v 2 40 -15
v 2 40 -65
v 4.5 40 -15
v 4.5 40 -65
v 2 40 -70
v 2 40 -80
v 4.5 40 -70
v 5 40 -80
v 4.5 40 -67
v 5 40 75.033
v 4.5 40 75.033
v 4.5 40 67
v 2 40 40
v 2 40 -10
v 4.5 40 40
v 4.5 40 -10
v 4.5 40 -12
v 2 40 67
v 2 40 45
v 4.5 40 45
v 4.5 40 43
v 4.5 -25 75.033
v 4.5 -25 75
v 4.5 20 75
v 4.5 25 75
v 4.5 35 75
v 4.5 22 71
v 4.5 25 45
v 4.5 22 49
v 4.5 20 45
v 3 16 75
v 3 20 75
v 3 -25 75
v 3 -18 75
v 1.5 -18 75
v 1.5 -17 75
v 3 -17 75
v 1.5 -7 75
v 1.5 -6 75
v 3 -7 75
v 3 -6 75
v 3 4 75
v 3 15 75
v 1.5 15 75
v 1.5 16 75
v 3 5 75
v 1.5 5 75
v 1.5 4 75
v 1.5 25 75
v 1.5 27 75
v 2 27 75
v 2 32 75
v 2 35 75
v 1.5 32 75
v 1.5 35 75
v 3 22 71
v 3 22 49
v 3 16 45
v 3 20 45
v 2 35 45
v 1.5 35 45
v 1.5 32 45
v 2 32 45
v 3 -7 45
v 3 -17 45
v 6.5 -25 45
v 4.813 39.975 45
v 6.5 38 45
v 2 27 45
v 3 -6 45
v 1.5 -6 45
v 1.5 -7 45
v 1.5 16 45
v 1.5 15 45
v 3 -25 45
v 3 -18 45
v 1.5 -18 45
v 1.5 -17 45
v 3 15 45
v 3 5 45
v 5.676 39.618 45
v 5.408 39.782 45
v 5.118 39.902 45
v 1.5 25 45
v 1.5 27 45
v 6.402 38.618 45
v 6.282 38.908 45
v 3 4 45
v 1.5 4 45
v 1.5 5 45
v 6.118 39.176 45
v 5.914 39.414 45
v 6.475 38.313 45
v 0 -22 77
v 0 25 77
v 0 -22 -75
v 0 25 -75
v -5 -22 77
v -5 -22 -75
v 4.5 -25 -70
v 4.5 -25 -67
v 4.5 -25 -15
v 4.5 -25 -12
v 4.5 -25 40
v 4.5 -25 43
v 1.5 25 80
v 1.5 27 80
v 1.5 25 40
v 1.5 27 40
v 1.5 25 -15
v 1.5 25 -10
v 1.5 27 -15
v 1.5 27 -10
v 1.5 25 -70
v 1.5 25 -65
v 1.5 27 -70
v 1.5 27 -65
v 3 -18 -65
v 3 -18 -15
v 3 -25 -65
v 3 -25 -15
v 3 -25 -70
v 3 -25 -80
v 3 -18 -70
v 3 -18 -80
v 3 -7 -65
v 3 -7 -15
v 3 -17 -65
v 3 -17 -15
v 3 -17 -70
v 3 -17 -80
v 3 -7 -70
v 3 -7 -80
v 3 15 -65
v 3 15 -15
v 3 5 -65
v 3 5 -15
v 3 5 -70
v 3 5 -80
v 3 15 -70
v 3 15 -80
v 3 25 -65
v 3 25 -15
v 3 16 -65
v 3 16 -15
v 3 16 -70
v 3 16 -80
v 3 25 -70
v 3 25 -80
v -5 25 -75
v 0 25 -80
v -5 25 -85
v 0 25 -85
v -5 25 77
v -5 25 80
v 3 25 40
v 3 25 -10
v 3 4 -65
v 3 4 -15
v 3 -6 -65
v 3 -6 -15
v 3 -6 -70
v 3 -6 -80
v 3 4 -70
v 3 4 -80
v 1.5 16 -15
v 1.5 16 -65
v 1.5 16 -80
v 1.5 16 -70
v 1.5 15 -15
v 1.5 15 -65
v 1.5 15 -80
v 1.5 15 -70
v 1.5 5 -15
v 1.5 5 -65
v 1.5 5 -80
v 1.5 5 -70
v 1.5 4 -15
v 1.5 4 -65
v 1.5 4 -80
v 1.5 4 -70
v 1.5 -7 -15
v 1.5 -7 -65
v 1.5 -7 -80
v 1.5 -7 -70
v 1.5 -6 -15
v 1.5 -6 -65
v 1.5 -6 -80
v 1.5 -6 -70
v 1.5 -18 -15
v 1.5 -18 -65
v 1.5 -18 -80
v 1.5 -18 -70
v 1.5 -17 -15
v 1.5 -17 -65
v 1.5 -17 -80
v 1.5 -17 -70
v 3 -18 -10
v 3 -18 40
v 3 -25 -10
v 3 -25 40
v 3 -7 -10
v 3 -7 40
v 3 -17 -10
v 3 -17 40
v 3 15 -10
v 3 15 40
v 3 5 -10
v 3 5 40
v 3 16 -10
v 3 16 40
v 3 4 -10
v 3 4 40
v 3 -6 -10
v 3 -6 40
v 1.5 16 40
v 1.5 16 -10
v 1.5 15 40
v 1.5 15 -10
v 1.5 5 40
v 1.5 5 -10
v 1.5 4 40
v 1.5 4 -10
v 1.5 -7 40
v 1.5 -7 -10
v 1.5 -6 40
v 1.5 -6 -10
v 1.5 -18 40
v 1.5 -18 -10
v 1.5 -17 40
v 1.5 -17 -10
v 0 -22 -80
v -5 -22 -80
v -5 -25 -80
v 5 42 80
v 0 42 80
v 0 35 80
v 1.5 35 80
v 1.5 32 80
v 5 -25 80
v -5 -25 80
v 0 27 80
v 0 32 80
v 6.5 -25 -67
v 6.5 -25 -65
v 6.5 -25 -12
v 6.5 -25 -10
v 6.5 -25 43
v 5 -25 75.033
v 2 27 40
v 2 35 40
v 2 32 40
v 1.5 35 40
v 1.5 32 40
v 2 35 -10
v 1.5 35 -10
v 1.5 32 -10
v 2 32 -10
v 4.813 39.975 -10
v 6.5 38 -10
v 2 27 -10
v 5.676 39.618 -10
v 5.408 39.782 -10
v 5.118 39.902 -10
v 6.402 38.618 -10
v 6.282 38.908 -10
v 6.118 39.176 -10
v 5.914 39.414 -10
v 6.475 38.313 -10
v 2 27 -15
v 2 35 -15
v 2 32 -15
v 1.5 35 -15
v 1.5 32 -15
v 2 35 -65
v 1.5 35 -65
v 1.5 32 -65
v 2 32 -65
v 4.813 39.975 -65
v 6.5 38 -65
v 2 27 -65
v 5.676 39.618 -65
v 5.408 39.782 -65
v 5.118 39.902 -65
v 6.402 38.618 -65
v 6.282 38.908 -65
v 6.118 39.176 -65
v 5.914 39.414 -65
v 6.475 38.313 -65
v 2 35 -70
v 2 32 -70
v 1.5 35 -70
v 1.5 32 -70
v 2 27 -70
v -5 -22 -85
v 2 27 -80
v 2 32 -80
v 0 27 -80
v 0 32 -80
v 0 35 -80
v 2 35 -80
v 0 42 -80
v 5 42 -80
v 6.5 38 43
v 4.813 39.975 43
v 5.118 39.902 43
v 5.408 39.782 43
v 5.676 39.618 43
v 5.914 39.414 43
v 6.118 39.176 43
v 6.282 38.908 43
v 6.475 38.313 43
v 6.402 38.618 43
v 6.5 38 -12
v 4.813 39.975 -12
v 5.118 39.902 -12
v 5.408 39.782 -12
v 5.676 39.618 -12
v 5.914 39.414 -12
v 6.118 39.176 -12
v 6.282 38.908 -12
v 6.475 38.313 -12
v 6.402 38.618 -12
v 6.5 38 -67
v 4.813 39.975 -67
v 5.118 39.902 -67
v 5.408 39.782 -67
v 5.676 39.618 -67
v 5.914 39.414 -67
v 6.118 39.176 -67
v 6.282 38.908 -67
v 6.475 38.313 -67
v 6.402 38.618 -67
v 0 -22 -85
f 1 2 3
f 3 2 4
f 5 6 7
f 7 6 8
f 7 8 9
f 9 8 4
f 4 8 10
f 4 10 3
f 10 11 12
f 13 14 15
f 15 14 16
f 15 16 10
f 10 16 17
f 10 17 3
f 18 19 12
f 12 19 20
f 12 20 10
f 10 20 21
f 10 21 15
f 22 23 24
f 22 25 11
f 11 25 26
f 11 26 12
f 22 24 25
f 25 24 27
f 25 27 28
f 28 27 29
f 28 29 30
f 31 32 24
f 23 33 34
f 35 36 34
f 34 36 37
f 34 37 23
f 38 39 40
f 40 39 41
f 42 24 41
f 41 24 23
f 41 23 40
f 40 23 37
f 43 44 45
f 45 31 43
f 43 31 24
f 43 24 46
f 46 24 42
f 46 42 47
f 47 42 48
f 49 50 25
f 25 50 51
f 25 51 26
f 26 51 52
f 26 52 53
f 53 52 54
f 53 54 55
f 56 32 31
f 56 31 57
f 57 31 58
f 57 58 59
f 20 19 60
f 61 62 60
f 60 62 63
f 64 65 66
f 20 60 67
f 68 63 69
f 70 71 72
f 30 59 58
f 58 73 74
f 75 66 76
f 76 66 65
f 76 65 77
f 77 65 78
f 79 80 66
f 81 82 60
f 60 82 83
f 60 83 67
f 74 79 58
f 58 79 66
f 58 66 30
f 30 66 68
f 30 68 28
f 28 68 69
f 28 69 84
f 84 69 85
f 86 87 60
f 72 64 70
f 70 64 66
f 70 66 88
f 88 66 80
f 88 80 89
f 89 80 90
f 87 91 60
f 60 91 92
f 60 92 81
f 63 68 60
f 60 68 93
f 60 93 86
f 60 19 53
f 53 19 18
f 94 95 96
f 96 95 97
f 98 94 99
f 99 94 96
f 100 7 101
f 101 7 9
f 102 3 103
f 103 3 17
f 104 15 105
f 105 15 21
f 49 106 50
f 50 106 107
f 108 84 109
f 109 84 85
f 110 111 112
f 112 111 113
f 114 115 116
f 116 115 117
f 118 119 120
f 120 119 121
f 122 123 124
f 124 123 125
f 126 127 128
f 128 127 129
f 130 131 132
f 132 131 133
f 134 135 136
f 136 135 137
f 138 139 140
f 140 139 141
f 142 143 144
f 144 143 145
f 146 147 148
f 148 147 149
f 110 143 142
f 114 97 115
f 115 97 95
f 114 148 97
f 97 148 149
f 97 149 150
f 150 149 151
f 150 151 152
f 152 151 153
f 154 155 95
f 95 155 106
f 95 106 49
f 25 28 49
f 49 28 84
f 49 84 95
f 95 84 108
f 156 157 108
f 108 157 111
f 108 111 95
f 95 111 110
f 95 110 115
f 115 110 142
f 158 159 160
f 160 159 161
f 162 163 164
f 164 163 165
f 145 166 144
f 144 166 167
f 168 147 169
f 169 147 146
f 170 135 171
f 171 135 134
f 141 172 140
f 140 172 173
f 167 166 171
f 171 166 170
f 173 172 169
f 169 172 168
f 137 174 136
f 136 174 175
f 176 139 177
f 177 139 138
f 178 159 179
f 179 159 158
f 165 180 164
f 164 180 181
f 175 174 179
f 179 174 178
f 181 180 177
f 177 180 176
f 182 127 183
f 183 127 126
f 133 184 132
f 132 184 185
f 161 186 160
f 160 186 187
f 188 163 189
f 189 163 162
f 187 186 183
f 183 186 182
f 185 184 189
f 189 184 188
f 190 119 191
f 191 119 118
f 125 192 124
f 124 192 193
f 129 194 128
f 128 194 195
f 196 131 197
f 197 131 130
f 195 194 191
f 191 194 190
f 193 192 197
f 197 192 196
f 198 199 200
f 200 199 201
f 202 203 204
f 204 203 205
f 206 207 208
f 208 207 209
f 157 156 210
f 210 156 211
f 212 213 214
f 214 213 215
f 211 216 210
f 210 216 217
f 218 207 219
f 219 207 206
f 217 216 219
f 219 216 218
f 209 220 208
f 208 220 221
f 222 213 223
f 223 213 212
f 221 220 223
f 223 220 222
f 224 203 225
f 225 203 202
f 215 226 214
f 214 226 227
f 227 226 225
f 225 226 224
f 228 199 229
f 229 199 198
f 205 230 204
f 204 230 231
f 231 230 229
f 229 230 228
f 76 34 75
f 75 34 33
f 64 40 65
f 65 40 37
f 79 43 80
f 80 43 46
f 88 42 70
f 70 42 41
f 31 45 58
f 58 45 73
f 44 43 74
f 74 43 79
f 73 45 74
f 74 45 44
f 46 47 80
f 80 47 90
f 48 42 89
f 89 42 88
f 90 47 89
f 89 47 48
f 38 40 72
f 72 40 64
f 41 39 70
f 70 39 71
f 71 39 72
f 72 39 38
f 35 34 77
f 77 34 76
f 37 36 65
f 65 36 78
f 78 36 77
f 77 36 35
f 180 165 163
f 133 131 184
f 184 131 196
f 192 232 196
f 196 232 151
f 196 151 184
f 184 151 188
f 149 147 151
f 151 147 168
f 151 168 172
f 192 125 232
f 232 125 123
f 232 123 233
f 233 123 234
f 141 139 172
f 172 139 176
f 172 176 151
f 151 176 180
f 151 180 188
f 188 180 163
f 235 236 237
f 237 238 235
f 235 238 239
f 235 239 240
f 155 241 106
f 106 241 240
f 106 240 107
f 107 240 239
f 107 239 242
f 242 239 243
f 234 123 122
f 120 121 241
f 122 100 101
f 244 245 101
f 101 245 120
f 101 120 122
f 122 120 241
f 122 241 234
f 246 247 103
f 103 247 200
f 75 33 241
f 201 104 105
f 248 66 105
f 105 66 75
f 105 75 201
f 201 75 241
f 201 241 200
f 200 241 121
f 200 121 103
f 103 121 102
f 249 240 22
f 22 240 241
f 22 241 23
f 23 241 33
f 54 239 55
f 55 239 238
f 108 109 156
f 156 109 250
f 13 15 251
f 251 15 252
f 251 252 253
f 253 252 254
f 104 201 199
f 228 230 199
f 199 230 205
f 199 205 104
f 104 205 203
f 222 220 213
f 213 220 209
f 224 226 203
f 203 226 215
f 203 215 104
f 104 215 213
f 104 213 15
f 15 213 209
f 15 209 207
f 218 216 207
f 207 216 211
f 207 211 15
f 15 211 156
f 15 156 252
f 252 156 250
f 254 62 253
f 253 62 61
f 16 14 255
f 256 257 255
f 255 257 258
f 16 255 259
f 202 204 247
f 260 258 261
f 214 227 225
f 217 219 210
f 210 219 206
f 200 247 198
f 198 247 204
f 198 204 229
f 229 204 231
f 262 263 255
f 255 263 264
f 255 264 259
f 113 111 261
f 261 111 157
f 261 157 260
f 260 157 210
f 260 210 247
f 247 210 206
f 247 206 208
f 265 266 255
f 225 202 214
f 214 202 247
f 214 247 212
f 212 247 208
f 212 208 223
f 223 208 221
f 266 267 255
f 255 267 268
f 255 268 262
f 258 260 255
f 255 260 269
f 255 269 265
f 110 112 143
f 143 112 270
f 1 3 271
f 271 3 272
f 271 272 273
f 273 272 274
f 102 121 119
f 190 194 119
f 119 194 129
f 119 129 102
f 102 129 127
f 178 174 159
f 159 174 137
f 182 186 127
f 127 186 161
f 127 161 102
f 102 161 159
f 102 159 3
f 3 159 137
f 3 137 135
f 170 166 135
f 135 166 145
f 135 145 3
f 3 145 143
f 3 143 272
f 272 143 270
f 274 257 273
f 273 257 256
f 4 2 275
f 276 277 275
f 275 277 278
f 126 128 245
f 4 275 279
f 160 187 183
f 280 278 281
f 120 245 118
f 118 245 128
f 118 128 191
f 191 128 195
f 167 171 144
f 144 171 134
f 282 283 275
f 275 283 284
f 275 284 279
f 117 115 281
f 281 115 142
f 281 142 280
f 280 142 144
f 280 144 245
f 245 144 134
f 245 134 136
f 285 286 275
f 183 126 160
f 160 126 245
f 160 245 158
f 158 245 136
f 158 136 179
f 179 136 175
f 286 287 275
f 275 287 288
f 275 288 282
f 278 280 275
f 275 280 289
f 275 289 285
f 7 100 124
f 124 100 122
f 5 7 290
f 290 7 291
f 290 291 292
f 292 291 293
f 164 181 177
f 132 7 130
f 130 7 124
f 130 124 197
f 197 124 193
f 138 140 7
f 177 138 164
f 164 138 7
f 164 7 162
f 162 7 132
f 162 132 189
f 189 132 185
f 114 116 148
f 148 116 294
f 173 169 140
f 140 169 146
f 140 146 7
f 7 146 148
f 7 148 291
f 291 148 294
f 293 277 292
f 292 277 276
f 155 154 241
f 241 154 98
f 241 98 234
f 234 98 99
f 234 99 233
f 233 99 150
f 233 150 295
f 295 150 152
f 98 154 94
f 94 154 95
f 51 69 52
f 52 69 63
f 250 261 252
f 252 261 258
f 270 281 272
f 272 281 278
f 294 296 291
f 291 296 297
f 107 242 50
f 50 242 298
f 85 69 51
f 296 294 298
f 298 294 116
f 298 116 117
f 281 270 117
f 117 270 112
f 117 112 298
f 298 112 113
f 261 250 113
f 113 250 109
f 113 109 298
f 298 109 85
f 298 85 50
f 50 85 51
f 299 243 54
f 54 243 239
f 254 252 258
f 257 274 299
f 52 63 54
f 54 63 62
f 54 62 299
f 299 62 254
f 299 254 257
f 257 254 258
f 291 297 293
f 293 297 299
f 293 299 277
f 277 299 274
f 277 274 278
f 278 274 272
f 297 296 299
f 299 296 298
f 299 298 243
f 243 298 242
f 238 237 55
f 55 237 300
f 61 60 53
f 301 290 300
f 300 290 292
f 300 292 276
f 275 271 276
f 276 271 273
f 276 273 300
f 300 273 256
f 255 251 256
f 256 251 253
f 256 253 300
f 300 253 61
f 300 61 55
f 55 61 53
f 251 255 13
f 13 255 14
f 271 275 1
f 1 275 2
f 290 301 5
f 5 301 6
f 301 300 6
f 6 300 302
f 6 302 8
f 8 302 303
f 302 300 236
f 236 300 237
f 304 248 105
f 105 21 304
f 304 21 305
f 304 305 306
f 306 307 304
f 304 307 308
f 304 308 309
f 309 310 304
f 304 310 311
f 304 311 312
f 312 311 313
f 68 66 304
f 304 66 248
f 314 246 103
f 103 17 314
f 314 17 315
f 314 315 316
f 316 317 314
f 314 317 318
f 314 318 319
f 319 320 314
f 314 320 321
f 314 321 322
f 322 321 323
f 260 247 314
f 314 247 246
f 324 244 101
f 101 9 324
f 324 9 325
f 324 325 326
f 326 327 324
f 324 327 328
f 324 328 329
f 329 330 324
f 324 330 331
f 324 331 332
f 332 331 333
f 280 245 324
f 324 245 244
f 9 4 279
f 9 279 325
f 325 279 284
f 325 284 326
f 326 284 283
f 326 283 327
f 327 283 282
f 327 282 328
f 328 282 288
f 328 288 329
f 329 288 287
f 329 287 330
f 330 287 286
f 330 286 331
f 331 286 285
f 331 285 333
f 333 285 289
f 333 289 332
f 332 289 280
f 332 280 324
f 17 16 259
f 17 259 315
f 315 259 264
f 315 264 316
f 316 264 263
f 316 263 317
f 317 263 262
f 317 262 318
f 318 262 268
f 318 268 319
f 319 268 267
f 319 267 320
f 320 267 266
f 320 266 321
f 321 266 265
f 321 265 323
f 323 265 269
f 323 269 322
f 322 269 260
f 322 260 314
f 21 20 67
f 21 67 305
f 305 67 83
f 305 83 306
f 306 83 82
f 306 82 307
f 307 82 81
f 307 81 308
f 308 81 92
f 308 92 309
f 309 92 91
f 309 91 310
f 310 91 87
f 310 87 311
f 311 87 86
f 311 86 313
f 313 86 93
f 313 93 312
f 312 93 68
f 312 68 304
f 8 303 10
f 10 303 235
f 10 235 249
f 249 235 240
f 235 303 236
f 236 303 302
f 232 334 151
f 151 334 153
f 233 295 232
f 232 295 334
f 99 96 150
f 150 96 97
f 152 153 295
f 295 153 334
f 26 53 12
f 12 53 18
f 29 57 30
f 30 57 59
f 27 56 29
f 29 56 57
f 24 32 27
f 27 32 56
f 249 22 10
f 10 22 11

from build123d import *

# Parameters (mm, degrees)
SKETCH1_W            = 160
SKETCH1_H            = 50
BOSS_EXTRUDE1_DEPTH  = 3
SKETCH2_W            = 160
SKETCH2_H            = 1
CUT_EXTRUDE1_DEPTH   = 1.5
SKETCH3_W            = 5
SKETCH3_H            = 65
BOSS_EXTRUDE2_DEPTH  = 1.5
SKETCH4_W            = 160
SKETCH4_H            = 3
BOSS_EXTRUDE3_DEPTH  = 5
SKETCH5_W            = 3
SKETCH5_H            = 47
BOSS_EXTRUDE4_DEPTH  = 5
SKETCH6_W            = 160
SKETCH6_H            = 5
BOSS_EXTRUDE5_DEPTH  = 2
SKETCH7_W            = 2
SKETCH7_H            = 65
BOSS_EXTRUDE6_DEPTH  = 2
FILLET1_R            = 2
SKETCH8_W            = 5
SKETCH8_H            = 160
BOSS_EXTRUDE7_DEPTH  = 2
SKETCH9_W            = 10
SKETCH9_H            = 47
BOSS_EXTRUDE8_DEPTH  = 5
BOSS_EXTRUDE9_DEPTH  = 2.5
BOSS_EXTRUDE10_DEPTH = 1.5
SKETCH12_W           = 4.967149052
SKETCH12_H           = 65
BOSS_EXTRUDE11_DEPTH = 0.5


with BuildPart() as part:
    # Sketch1 → Boss-Extrude1 (new body)
    with BuildSketch(Plane(origin=(0, 0, 0), x_dir=(0, 0, -1), z_dir=(1, 0, 0))):
        Rectangle(SKETCH1_W, SKETCH1_H)
    extrude(amount=BOSS_EXTRUDE1_DEPTH)

    # Sketch2 → Cut-Extrude1 (cut)
    with BuildSketch(Plane(origin=(3, 0, 0), x_dir=(0, 0, -1), z_dir=(1, 0, 0))):
        with Locations((0, -17.5)):
            Rectangle(SKETCH2_W, SKETCH2_H)
        with Locations((0, -6.5)):
            Rectangle(SKETCH2_W, SKETCH2_H)
        with Locations((0, 4.5)):
            Rectangle(SKETCH2_W, SKETCH2_H)
        with Locations((0, 15.5)):
            Rectangle(SKETCH2_W, SKETCH2_H)
    extrude(amount=-CUT_EXTRUDE1_DEPTH, mode=Mode.SUBTRACT)

    # Sketch3 → Boss-Extrude2 (add, symmetric)
    with BuildSketch(Plane(origin=(3, 0, 0), x_dir=(0, 0, -1), z_dir=(1, 0, 0))):
        with Locations((-77.5, 7.5)):
            Rectangle(SKETCH3_W, SKETCH3_H)
        with Locations((-42.5, 7.5)):
            Rectangle(SKETCH3_W, SKETCH3_H)
        with Locations((12.5, 7.5)):
            Rectangle(SKETCH3_W, SKETCH3_H)
        with Locations((67.5, 7.5)):
            Rectangle(SKETCH3_W, SKETCH3_H)
    extrude(amount=BOSS_EXTRUDE2_DEPTH, both=True)

    # Sketch4 → Boss-Extrude3 (add)
    with BuildSketch(Plane.ZY):
        with Locations((0, -23.5)):
            Rectangle(SKETCH4_W, SKETCH4_H)
    extrude(amount=BOSS_EXTRUDE3_DEPTH)

    # Sketch5 → Boss-Extrude4 (add)
    with BuildSketch(Plane.ZY):
        with Locations((78.5, 1.5)):
            Rectangle(SKETCH5_W, SKETCH5_H)
    extrude(amount=BOSS_EXTRUDE4_DEPTH)

    # Sketch6 → Boss-Extrude5 (add)
    with BuildSketch(Plane.ZY):
        with Locations((0, 29.5)):
            Rectangle(SKETCH6_W, SKETCH6_H)
        with Locations((0, 37.5)):
            Rectangle(SKETCH6_W, SKETCH6_H)
    extrude(amount=-BOSS_EXTRUDE5_DEPTH)

    # Sketch7 → Boss-Extrude6 (add)
    with BuildSketch(Plane(origin=(4.5, 0, 0), x_dir=(0, 0, -1), z_dir=(1, 0, 0))):
        with Locations((-44, 7.5)):
            Rectangle(SKETCH7_W, SKETCH7_H)
        with Locations((11, 7.5)):
            Rectangle(SKETCH7_W, SKETCH7_H)
        with Locations((66, 7.5)):
            Rectangle(SKETCH7_W, SKETCH7_H)
    extrude(amount=BOSS_EXTRUDE6_DEPTH)

    # Fillet1
    fillet1_edges = [part.edges().sort_by_distance(p)[0] for p in [
        (6.5, 40, -66),
        (6.5, 40, -11),
        (6.5, 40, 44),
    ]]
    fillet(fillet1_edges, radius=FILLET1_R)

    # Sketch8 → Boss-Extrude7 (add)
    with BuildSketch(Plane(origin=(0, 40, 0), x_dir=(1, 0, 0), z_dir=(0, 1, 0))):
        with Locations((2.5, 0)):
            Rectangle(SKETCH8_W, SKETCH8_H)
    extrude(amount=BOSS_EXTRUDE7_DEPTH)

    # Sketch9 → Boss-Extrude8 (add)
    with BuildSketch(Plane.ZY):
        with Locations((-80, 1.5)):
            Rectangle(SKETCH9_W, SKETCH9_H)
    extrude(amount=BOSS_EXTRUDE8_DEPTH)

    # Sketch10 → Boss-Extrude9 (add)
    with BuildSketch(Plane(origin=(2, 0, 0), x_dir=(0, 0, -1), z_dir=(1, 0, 0))):
        Polygon((-75, 40), (-75, 35), (-67, 40), align=None)
    extrude(amount=BOSS_EXTRUDE9_DEPTH)

    # Sketch11 → Boss-Extrude10 (add)
    with BuildSketch(Plane(origin=(3, 0, 0), x_dir=(0, 0, -1), z_dir=(1, 0, 0))):
        Polygon((-45, 25), (-75, 25), (-75, 20), (-71, 22), (-49, 22), (-45, 20), align=None)
    extrude(amount=BOSS_EXTRUDE10_DEPTH)

    # Sketch12 → Boss-Extrude11 (add)
    with BuildSketch(Plane(origin=(4.5, 0, 0), x_dir=(0, 0, -1), z_dir=(1, 0, 0))):
        with Locations((-77.516425474, 7.5)):
            Rectangle(SKETCH12_W, SKETCH12_H)
    extrude(amount=BOSS_EXTRUDE11_DEPTH)


solid = part.part
